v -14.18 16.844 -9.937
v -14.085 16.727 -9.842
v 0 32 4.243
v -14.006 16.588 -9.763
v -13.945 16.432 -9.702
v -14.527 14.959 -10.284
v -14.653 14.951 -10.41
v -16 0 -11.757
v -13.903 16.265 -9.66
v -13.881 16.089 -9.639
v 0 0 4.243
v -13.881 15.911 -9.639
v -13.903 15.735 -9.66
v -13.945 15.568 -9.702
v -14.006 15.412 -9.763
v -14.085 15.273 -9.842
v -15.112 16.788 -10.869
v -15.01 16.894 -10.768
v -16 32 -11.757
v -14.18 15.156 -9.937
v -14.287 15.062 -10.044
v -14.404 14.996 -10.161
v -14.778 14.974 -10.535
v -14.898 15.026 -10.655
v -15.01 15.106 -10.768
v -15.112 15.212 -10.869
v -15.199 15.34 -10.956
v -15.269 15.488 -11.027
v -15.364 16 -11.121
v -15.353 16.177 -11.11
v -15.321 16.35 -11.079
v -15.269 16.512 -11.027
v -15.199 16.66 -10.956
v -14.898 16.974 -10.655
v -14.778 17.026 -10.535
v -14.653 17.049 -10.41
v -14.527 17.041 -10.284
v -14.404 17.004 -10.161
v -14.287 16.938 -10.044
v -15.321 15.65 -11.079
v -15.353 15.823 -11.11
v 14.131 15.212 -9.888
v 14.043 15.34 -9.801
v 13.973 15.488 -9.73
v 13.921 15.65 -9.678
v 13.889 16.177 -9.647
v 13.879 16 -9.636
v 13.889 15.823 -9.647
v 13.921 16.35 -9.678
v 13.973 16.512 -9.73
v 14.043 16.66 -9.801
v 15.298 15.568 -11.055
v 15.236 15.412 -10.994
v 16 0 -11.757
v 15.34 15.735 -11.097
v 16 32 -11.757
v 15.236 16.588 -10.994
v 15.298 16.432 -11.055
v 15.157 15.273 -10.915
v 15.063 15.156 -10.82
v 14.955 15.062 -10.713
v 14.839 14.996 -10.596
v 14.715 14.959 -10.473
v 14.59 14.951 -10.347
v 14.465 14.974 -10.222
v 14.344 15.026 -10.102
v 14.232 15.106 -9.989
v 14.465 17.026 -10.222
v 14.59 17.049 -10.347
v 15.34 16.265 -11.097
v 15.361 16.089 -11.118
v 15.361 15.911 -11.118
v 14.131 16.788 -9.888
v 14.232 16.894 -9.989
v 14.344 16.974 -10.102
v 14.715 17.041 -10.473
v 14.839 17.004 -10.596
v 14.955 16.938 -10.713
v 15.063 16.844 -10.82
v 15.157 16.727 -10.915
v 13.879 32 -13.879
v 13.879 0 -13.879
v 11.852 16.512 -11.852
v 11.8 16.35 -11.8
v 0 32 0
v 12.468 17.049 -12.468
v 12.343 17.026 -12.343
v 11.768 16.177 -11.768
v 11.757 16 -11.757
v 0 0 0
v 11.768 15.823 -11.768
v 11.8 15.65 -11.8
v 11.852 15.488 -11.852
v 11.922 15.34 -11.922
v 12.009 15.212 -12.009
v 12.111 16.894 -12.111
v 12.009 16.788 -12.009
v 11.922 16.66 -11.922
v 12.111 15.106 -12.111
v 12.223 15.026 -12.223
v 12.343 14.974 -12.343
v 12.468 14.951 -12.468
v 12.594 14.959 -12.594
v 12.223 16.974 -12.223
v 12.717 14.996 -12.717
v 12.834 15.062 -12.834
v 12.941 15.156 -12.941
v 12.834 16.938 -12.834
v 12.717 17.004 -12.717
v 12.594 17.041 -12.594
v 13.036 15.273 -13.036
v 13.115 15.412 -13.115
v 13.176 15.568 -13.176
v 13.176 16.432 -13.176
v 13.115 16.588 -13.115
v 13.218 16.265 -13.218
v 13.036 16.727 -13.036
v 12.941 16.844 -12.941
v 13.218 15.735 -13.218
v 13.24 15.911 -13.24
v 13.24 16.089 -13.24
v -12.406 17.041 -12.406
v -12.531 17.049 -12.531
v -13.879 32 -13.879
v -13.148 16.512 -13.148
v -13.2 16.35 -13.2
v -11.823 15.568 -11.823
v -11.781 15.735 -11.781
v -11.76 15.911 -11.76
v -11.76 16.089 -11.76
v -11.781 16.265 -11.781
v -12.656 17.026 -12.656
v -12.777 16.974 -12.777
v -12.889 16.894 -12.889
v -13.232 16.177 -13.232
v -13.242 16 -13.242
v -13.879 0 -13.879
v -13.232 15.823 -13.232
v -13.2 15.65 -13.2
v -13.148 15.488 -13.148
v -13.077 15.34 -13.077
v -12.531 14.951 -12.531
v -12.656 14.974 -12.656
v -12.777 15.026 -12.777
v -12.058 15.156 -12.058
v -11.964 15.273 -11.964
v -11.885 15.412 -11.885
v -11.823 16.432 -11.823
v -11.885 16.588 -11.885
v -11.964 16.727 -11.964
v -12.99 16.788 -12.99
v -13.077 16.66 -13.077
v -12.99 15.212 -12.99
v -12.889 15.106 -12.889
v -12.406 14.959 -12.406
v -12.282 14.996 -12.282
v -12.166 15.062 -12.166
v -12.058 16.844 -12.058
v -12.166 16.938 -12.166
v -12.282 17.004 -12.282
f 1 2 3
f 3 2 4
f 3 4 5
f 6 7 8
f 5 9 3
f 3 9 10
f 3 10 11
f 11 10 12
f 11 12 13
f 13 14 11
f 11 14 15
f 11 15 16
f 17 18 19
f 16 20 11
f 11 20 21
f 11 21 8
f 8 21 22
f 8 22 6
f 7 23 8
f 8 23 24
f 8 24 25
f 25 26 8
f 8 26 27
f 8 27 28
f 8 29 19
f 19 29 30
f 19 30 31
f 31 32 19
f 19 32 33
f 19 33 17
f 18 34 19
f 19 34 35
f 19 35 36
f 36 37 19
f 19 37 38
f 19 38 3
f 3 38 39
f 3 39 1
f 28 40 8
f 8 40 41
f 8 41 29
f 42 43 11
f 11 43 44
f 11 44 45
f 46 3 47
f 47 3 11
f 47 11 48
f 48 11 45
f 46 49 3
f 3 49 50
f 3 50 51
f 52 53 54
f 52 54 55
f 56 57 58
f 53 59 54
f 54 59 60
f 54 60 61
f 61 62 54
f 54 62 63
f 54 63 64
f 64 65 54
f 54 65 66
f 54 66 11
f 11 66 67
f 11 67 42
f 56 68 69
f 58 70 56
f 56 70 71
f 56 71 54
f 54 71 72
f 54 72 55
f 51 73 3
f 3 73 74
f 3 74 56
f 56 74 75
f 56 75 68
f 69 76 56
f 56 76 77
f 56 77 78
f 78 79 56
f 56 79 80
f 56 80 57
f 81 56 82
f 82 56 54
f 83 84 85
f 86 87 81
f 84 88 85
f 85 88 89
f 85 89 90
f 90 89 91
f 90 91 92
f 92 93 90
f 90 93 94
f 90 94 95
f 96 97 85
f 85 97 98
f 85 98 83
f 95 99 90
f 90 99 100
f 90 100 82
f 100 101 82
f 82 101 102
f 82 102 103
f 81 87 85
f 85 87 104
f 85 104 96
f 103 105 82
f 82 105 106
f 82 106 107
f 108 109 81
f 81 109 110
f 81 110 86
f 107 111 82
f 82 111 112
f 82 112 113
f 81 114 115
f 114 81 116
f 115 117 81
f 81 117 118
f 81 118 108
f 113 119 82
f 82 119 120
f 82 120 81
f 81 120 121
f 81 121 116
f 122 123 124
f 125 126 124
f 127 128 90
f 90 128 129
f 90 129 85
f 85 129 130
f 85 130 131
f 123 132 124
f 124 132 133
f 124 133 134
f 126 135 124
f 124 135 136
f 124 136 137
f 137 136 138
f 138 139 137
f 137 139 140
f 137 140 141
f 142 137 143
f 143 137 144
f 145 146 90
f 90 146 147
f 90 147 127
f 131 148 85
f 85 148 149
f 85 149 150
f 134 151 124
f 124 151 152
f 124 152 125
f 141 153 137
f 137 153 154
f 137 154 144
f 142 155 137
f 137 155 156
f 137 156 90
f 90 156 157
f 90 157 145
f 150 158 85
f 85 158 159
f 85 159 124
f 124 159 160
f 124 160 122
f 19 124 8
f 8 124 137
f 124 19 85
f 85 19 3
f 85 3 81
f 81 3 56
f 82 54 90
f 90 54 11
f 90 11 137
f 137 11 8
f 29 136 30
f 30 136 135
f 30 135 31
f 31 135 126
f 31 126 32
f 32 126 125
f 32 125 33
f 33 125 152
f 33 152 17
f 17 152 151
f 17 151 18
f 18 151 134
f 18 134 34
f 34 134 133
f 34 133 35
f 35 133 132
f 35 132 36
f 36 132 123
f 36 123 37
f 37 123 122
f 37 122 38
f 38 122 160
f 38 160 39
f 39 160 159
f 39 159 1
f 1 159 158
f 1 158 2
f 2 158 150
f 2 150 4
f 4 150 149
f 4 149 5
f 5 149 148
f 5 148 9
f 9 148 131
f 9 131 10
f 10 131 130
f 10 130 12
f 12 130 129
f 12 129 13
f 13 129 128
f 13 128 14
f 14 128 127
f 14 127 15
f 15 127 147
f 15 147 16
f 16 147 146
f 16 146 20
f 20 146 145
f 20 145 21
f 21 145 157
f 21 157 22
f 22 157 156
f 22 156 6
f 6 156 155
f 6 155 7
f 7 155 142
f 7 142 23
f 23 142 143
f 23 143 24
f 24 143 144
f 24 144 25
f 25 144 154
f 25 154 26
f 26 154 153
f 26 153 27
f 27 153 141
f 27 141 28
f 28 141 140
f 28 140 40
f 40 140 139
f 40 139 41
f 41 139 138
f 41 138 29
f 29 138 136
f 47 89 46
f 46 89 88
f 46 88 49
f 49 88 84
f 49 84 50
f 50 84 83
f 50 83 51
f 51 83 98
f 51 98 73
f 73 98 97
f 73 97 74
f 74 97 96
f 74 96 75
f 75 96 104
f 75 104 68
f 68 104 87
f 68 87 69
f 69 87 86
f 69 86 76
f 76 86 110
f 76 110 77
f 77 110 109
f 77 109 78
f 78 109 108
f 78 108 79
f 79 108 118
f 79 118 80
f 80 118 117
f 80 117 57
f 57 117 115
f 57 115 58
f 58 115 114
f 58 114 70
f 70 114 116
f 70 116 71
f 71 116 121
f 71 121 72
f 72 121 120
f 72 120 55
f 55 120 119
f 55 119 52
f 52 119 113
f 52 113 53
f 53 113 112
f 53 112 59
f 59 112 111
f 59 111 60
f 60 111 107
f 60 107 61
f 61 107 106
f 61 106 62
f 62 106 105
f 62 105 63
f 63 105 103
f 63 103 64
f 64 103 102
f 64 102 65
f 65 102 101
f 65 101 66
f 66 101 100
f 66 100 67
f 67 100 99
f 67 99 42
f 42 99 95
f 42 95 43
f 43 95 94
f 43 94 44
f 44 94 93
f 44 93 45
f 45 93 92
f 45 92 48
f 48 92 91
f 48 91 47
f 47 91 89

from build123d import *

# Parameters (mm, degrees)
BOSS_EXTRUDE1_DEPTH = 32
SKETCH2_R           = 1.05
CUT_EXTRUDE1_DEPTH  = 32
SKETCH3_R           = 1.05
CUT_EXTRUDE2_DEPTH  = 32


with BuildPart() as part:
    # Sketch1 → Boss-Extrude1 (new body)
    with BuildSketch(Plane(origin=(0, 0, 0), x_dir=(1, 0, 0), z_dir=(0, 1, 0))):
        Polygon((-16, 11.757359313), (0, -4.242640687), (16, 11.757359313), (13.878679656, 13.878679656), (0, 0), (-13.878679656, 13.878679656), align=None)
    extrude(amount=BOSS_EXTRUDE1_DEPTH)

    # Sketch2 → Cut-Extrude1 (cut)
    with BuildSketch(Plane(origin=(0, 0, 0), x_dir=(-0.7071067811865538, 0, -0.7071067811865414), z_dir=(0.7071067811865414, 0, -0.7071067811865538))):
        with Locations((17.677416998, 16)):
            Circle(SKETCH2_R)
    extrude(amount=-CUT_EXTRUDE1_DEPTH, mode=Mode.SUBTRACT)

    # Sketch3 → Cut-Extrude2 (cut)
    with BuildSketch(Plane(origin=(0, 0, 0), x_dir=(-0.7071067811865475, 0, 0.7071067811865477), z_dir=(-0.7071067811865477, 0, -0.7071067811865475))):
        with Locations((-17.677416998, 16)):
            Circle(SKETCH3_R)
    extrude(amount=-CUT_EXTRUDE2_DEPTH, mode=Mode.SUBTRACT)


solid = part.part
